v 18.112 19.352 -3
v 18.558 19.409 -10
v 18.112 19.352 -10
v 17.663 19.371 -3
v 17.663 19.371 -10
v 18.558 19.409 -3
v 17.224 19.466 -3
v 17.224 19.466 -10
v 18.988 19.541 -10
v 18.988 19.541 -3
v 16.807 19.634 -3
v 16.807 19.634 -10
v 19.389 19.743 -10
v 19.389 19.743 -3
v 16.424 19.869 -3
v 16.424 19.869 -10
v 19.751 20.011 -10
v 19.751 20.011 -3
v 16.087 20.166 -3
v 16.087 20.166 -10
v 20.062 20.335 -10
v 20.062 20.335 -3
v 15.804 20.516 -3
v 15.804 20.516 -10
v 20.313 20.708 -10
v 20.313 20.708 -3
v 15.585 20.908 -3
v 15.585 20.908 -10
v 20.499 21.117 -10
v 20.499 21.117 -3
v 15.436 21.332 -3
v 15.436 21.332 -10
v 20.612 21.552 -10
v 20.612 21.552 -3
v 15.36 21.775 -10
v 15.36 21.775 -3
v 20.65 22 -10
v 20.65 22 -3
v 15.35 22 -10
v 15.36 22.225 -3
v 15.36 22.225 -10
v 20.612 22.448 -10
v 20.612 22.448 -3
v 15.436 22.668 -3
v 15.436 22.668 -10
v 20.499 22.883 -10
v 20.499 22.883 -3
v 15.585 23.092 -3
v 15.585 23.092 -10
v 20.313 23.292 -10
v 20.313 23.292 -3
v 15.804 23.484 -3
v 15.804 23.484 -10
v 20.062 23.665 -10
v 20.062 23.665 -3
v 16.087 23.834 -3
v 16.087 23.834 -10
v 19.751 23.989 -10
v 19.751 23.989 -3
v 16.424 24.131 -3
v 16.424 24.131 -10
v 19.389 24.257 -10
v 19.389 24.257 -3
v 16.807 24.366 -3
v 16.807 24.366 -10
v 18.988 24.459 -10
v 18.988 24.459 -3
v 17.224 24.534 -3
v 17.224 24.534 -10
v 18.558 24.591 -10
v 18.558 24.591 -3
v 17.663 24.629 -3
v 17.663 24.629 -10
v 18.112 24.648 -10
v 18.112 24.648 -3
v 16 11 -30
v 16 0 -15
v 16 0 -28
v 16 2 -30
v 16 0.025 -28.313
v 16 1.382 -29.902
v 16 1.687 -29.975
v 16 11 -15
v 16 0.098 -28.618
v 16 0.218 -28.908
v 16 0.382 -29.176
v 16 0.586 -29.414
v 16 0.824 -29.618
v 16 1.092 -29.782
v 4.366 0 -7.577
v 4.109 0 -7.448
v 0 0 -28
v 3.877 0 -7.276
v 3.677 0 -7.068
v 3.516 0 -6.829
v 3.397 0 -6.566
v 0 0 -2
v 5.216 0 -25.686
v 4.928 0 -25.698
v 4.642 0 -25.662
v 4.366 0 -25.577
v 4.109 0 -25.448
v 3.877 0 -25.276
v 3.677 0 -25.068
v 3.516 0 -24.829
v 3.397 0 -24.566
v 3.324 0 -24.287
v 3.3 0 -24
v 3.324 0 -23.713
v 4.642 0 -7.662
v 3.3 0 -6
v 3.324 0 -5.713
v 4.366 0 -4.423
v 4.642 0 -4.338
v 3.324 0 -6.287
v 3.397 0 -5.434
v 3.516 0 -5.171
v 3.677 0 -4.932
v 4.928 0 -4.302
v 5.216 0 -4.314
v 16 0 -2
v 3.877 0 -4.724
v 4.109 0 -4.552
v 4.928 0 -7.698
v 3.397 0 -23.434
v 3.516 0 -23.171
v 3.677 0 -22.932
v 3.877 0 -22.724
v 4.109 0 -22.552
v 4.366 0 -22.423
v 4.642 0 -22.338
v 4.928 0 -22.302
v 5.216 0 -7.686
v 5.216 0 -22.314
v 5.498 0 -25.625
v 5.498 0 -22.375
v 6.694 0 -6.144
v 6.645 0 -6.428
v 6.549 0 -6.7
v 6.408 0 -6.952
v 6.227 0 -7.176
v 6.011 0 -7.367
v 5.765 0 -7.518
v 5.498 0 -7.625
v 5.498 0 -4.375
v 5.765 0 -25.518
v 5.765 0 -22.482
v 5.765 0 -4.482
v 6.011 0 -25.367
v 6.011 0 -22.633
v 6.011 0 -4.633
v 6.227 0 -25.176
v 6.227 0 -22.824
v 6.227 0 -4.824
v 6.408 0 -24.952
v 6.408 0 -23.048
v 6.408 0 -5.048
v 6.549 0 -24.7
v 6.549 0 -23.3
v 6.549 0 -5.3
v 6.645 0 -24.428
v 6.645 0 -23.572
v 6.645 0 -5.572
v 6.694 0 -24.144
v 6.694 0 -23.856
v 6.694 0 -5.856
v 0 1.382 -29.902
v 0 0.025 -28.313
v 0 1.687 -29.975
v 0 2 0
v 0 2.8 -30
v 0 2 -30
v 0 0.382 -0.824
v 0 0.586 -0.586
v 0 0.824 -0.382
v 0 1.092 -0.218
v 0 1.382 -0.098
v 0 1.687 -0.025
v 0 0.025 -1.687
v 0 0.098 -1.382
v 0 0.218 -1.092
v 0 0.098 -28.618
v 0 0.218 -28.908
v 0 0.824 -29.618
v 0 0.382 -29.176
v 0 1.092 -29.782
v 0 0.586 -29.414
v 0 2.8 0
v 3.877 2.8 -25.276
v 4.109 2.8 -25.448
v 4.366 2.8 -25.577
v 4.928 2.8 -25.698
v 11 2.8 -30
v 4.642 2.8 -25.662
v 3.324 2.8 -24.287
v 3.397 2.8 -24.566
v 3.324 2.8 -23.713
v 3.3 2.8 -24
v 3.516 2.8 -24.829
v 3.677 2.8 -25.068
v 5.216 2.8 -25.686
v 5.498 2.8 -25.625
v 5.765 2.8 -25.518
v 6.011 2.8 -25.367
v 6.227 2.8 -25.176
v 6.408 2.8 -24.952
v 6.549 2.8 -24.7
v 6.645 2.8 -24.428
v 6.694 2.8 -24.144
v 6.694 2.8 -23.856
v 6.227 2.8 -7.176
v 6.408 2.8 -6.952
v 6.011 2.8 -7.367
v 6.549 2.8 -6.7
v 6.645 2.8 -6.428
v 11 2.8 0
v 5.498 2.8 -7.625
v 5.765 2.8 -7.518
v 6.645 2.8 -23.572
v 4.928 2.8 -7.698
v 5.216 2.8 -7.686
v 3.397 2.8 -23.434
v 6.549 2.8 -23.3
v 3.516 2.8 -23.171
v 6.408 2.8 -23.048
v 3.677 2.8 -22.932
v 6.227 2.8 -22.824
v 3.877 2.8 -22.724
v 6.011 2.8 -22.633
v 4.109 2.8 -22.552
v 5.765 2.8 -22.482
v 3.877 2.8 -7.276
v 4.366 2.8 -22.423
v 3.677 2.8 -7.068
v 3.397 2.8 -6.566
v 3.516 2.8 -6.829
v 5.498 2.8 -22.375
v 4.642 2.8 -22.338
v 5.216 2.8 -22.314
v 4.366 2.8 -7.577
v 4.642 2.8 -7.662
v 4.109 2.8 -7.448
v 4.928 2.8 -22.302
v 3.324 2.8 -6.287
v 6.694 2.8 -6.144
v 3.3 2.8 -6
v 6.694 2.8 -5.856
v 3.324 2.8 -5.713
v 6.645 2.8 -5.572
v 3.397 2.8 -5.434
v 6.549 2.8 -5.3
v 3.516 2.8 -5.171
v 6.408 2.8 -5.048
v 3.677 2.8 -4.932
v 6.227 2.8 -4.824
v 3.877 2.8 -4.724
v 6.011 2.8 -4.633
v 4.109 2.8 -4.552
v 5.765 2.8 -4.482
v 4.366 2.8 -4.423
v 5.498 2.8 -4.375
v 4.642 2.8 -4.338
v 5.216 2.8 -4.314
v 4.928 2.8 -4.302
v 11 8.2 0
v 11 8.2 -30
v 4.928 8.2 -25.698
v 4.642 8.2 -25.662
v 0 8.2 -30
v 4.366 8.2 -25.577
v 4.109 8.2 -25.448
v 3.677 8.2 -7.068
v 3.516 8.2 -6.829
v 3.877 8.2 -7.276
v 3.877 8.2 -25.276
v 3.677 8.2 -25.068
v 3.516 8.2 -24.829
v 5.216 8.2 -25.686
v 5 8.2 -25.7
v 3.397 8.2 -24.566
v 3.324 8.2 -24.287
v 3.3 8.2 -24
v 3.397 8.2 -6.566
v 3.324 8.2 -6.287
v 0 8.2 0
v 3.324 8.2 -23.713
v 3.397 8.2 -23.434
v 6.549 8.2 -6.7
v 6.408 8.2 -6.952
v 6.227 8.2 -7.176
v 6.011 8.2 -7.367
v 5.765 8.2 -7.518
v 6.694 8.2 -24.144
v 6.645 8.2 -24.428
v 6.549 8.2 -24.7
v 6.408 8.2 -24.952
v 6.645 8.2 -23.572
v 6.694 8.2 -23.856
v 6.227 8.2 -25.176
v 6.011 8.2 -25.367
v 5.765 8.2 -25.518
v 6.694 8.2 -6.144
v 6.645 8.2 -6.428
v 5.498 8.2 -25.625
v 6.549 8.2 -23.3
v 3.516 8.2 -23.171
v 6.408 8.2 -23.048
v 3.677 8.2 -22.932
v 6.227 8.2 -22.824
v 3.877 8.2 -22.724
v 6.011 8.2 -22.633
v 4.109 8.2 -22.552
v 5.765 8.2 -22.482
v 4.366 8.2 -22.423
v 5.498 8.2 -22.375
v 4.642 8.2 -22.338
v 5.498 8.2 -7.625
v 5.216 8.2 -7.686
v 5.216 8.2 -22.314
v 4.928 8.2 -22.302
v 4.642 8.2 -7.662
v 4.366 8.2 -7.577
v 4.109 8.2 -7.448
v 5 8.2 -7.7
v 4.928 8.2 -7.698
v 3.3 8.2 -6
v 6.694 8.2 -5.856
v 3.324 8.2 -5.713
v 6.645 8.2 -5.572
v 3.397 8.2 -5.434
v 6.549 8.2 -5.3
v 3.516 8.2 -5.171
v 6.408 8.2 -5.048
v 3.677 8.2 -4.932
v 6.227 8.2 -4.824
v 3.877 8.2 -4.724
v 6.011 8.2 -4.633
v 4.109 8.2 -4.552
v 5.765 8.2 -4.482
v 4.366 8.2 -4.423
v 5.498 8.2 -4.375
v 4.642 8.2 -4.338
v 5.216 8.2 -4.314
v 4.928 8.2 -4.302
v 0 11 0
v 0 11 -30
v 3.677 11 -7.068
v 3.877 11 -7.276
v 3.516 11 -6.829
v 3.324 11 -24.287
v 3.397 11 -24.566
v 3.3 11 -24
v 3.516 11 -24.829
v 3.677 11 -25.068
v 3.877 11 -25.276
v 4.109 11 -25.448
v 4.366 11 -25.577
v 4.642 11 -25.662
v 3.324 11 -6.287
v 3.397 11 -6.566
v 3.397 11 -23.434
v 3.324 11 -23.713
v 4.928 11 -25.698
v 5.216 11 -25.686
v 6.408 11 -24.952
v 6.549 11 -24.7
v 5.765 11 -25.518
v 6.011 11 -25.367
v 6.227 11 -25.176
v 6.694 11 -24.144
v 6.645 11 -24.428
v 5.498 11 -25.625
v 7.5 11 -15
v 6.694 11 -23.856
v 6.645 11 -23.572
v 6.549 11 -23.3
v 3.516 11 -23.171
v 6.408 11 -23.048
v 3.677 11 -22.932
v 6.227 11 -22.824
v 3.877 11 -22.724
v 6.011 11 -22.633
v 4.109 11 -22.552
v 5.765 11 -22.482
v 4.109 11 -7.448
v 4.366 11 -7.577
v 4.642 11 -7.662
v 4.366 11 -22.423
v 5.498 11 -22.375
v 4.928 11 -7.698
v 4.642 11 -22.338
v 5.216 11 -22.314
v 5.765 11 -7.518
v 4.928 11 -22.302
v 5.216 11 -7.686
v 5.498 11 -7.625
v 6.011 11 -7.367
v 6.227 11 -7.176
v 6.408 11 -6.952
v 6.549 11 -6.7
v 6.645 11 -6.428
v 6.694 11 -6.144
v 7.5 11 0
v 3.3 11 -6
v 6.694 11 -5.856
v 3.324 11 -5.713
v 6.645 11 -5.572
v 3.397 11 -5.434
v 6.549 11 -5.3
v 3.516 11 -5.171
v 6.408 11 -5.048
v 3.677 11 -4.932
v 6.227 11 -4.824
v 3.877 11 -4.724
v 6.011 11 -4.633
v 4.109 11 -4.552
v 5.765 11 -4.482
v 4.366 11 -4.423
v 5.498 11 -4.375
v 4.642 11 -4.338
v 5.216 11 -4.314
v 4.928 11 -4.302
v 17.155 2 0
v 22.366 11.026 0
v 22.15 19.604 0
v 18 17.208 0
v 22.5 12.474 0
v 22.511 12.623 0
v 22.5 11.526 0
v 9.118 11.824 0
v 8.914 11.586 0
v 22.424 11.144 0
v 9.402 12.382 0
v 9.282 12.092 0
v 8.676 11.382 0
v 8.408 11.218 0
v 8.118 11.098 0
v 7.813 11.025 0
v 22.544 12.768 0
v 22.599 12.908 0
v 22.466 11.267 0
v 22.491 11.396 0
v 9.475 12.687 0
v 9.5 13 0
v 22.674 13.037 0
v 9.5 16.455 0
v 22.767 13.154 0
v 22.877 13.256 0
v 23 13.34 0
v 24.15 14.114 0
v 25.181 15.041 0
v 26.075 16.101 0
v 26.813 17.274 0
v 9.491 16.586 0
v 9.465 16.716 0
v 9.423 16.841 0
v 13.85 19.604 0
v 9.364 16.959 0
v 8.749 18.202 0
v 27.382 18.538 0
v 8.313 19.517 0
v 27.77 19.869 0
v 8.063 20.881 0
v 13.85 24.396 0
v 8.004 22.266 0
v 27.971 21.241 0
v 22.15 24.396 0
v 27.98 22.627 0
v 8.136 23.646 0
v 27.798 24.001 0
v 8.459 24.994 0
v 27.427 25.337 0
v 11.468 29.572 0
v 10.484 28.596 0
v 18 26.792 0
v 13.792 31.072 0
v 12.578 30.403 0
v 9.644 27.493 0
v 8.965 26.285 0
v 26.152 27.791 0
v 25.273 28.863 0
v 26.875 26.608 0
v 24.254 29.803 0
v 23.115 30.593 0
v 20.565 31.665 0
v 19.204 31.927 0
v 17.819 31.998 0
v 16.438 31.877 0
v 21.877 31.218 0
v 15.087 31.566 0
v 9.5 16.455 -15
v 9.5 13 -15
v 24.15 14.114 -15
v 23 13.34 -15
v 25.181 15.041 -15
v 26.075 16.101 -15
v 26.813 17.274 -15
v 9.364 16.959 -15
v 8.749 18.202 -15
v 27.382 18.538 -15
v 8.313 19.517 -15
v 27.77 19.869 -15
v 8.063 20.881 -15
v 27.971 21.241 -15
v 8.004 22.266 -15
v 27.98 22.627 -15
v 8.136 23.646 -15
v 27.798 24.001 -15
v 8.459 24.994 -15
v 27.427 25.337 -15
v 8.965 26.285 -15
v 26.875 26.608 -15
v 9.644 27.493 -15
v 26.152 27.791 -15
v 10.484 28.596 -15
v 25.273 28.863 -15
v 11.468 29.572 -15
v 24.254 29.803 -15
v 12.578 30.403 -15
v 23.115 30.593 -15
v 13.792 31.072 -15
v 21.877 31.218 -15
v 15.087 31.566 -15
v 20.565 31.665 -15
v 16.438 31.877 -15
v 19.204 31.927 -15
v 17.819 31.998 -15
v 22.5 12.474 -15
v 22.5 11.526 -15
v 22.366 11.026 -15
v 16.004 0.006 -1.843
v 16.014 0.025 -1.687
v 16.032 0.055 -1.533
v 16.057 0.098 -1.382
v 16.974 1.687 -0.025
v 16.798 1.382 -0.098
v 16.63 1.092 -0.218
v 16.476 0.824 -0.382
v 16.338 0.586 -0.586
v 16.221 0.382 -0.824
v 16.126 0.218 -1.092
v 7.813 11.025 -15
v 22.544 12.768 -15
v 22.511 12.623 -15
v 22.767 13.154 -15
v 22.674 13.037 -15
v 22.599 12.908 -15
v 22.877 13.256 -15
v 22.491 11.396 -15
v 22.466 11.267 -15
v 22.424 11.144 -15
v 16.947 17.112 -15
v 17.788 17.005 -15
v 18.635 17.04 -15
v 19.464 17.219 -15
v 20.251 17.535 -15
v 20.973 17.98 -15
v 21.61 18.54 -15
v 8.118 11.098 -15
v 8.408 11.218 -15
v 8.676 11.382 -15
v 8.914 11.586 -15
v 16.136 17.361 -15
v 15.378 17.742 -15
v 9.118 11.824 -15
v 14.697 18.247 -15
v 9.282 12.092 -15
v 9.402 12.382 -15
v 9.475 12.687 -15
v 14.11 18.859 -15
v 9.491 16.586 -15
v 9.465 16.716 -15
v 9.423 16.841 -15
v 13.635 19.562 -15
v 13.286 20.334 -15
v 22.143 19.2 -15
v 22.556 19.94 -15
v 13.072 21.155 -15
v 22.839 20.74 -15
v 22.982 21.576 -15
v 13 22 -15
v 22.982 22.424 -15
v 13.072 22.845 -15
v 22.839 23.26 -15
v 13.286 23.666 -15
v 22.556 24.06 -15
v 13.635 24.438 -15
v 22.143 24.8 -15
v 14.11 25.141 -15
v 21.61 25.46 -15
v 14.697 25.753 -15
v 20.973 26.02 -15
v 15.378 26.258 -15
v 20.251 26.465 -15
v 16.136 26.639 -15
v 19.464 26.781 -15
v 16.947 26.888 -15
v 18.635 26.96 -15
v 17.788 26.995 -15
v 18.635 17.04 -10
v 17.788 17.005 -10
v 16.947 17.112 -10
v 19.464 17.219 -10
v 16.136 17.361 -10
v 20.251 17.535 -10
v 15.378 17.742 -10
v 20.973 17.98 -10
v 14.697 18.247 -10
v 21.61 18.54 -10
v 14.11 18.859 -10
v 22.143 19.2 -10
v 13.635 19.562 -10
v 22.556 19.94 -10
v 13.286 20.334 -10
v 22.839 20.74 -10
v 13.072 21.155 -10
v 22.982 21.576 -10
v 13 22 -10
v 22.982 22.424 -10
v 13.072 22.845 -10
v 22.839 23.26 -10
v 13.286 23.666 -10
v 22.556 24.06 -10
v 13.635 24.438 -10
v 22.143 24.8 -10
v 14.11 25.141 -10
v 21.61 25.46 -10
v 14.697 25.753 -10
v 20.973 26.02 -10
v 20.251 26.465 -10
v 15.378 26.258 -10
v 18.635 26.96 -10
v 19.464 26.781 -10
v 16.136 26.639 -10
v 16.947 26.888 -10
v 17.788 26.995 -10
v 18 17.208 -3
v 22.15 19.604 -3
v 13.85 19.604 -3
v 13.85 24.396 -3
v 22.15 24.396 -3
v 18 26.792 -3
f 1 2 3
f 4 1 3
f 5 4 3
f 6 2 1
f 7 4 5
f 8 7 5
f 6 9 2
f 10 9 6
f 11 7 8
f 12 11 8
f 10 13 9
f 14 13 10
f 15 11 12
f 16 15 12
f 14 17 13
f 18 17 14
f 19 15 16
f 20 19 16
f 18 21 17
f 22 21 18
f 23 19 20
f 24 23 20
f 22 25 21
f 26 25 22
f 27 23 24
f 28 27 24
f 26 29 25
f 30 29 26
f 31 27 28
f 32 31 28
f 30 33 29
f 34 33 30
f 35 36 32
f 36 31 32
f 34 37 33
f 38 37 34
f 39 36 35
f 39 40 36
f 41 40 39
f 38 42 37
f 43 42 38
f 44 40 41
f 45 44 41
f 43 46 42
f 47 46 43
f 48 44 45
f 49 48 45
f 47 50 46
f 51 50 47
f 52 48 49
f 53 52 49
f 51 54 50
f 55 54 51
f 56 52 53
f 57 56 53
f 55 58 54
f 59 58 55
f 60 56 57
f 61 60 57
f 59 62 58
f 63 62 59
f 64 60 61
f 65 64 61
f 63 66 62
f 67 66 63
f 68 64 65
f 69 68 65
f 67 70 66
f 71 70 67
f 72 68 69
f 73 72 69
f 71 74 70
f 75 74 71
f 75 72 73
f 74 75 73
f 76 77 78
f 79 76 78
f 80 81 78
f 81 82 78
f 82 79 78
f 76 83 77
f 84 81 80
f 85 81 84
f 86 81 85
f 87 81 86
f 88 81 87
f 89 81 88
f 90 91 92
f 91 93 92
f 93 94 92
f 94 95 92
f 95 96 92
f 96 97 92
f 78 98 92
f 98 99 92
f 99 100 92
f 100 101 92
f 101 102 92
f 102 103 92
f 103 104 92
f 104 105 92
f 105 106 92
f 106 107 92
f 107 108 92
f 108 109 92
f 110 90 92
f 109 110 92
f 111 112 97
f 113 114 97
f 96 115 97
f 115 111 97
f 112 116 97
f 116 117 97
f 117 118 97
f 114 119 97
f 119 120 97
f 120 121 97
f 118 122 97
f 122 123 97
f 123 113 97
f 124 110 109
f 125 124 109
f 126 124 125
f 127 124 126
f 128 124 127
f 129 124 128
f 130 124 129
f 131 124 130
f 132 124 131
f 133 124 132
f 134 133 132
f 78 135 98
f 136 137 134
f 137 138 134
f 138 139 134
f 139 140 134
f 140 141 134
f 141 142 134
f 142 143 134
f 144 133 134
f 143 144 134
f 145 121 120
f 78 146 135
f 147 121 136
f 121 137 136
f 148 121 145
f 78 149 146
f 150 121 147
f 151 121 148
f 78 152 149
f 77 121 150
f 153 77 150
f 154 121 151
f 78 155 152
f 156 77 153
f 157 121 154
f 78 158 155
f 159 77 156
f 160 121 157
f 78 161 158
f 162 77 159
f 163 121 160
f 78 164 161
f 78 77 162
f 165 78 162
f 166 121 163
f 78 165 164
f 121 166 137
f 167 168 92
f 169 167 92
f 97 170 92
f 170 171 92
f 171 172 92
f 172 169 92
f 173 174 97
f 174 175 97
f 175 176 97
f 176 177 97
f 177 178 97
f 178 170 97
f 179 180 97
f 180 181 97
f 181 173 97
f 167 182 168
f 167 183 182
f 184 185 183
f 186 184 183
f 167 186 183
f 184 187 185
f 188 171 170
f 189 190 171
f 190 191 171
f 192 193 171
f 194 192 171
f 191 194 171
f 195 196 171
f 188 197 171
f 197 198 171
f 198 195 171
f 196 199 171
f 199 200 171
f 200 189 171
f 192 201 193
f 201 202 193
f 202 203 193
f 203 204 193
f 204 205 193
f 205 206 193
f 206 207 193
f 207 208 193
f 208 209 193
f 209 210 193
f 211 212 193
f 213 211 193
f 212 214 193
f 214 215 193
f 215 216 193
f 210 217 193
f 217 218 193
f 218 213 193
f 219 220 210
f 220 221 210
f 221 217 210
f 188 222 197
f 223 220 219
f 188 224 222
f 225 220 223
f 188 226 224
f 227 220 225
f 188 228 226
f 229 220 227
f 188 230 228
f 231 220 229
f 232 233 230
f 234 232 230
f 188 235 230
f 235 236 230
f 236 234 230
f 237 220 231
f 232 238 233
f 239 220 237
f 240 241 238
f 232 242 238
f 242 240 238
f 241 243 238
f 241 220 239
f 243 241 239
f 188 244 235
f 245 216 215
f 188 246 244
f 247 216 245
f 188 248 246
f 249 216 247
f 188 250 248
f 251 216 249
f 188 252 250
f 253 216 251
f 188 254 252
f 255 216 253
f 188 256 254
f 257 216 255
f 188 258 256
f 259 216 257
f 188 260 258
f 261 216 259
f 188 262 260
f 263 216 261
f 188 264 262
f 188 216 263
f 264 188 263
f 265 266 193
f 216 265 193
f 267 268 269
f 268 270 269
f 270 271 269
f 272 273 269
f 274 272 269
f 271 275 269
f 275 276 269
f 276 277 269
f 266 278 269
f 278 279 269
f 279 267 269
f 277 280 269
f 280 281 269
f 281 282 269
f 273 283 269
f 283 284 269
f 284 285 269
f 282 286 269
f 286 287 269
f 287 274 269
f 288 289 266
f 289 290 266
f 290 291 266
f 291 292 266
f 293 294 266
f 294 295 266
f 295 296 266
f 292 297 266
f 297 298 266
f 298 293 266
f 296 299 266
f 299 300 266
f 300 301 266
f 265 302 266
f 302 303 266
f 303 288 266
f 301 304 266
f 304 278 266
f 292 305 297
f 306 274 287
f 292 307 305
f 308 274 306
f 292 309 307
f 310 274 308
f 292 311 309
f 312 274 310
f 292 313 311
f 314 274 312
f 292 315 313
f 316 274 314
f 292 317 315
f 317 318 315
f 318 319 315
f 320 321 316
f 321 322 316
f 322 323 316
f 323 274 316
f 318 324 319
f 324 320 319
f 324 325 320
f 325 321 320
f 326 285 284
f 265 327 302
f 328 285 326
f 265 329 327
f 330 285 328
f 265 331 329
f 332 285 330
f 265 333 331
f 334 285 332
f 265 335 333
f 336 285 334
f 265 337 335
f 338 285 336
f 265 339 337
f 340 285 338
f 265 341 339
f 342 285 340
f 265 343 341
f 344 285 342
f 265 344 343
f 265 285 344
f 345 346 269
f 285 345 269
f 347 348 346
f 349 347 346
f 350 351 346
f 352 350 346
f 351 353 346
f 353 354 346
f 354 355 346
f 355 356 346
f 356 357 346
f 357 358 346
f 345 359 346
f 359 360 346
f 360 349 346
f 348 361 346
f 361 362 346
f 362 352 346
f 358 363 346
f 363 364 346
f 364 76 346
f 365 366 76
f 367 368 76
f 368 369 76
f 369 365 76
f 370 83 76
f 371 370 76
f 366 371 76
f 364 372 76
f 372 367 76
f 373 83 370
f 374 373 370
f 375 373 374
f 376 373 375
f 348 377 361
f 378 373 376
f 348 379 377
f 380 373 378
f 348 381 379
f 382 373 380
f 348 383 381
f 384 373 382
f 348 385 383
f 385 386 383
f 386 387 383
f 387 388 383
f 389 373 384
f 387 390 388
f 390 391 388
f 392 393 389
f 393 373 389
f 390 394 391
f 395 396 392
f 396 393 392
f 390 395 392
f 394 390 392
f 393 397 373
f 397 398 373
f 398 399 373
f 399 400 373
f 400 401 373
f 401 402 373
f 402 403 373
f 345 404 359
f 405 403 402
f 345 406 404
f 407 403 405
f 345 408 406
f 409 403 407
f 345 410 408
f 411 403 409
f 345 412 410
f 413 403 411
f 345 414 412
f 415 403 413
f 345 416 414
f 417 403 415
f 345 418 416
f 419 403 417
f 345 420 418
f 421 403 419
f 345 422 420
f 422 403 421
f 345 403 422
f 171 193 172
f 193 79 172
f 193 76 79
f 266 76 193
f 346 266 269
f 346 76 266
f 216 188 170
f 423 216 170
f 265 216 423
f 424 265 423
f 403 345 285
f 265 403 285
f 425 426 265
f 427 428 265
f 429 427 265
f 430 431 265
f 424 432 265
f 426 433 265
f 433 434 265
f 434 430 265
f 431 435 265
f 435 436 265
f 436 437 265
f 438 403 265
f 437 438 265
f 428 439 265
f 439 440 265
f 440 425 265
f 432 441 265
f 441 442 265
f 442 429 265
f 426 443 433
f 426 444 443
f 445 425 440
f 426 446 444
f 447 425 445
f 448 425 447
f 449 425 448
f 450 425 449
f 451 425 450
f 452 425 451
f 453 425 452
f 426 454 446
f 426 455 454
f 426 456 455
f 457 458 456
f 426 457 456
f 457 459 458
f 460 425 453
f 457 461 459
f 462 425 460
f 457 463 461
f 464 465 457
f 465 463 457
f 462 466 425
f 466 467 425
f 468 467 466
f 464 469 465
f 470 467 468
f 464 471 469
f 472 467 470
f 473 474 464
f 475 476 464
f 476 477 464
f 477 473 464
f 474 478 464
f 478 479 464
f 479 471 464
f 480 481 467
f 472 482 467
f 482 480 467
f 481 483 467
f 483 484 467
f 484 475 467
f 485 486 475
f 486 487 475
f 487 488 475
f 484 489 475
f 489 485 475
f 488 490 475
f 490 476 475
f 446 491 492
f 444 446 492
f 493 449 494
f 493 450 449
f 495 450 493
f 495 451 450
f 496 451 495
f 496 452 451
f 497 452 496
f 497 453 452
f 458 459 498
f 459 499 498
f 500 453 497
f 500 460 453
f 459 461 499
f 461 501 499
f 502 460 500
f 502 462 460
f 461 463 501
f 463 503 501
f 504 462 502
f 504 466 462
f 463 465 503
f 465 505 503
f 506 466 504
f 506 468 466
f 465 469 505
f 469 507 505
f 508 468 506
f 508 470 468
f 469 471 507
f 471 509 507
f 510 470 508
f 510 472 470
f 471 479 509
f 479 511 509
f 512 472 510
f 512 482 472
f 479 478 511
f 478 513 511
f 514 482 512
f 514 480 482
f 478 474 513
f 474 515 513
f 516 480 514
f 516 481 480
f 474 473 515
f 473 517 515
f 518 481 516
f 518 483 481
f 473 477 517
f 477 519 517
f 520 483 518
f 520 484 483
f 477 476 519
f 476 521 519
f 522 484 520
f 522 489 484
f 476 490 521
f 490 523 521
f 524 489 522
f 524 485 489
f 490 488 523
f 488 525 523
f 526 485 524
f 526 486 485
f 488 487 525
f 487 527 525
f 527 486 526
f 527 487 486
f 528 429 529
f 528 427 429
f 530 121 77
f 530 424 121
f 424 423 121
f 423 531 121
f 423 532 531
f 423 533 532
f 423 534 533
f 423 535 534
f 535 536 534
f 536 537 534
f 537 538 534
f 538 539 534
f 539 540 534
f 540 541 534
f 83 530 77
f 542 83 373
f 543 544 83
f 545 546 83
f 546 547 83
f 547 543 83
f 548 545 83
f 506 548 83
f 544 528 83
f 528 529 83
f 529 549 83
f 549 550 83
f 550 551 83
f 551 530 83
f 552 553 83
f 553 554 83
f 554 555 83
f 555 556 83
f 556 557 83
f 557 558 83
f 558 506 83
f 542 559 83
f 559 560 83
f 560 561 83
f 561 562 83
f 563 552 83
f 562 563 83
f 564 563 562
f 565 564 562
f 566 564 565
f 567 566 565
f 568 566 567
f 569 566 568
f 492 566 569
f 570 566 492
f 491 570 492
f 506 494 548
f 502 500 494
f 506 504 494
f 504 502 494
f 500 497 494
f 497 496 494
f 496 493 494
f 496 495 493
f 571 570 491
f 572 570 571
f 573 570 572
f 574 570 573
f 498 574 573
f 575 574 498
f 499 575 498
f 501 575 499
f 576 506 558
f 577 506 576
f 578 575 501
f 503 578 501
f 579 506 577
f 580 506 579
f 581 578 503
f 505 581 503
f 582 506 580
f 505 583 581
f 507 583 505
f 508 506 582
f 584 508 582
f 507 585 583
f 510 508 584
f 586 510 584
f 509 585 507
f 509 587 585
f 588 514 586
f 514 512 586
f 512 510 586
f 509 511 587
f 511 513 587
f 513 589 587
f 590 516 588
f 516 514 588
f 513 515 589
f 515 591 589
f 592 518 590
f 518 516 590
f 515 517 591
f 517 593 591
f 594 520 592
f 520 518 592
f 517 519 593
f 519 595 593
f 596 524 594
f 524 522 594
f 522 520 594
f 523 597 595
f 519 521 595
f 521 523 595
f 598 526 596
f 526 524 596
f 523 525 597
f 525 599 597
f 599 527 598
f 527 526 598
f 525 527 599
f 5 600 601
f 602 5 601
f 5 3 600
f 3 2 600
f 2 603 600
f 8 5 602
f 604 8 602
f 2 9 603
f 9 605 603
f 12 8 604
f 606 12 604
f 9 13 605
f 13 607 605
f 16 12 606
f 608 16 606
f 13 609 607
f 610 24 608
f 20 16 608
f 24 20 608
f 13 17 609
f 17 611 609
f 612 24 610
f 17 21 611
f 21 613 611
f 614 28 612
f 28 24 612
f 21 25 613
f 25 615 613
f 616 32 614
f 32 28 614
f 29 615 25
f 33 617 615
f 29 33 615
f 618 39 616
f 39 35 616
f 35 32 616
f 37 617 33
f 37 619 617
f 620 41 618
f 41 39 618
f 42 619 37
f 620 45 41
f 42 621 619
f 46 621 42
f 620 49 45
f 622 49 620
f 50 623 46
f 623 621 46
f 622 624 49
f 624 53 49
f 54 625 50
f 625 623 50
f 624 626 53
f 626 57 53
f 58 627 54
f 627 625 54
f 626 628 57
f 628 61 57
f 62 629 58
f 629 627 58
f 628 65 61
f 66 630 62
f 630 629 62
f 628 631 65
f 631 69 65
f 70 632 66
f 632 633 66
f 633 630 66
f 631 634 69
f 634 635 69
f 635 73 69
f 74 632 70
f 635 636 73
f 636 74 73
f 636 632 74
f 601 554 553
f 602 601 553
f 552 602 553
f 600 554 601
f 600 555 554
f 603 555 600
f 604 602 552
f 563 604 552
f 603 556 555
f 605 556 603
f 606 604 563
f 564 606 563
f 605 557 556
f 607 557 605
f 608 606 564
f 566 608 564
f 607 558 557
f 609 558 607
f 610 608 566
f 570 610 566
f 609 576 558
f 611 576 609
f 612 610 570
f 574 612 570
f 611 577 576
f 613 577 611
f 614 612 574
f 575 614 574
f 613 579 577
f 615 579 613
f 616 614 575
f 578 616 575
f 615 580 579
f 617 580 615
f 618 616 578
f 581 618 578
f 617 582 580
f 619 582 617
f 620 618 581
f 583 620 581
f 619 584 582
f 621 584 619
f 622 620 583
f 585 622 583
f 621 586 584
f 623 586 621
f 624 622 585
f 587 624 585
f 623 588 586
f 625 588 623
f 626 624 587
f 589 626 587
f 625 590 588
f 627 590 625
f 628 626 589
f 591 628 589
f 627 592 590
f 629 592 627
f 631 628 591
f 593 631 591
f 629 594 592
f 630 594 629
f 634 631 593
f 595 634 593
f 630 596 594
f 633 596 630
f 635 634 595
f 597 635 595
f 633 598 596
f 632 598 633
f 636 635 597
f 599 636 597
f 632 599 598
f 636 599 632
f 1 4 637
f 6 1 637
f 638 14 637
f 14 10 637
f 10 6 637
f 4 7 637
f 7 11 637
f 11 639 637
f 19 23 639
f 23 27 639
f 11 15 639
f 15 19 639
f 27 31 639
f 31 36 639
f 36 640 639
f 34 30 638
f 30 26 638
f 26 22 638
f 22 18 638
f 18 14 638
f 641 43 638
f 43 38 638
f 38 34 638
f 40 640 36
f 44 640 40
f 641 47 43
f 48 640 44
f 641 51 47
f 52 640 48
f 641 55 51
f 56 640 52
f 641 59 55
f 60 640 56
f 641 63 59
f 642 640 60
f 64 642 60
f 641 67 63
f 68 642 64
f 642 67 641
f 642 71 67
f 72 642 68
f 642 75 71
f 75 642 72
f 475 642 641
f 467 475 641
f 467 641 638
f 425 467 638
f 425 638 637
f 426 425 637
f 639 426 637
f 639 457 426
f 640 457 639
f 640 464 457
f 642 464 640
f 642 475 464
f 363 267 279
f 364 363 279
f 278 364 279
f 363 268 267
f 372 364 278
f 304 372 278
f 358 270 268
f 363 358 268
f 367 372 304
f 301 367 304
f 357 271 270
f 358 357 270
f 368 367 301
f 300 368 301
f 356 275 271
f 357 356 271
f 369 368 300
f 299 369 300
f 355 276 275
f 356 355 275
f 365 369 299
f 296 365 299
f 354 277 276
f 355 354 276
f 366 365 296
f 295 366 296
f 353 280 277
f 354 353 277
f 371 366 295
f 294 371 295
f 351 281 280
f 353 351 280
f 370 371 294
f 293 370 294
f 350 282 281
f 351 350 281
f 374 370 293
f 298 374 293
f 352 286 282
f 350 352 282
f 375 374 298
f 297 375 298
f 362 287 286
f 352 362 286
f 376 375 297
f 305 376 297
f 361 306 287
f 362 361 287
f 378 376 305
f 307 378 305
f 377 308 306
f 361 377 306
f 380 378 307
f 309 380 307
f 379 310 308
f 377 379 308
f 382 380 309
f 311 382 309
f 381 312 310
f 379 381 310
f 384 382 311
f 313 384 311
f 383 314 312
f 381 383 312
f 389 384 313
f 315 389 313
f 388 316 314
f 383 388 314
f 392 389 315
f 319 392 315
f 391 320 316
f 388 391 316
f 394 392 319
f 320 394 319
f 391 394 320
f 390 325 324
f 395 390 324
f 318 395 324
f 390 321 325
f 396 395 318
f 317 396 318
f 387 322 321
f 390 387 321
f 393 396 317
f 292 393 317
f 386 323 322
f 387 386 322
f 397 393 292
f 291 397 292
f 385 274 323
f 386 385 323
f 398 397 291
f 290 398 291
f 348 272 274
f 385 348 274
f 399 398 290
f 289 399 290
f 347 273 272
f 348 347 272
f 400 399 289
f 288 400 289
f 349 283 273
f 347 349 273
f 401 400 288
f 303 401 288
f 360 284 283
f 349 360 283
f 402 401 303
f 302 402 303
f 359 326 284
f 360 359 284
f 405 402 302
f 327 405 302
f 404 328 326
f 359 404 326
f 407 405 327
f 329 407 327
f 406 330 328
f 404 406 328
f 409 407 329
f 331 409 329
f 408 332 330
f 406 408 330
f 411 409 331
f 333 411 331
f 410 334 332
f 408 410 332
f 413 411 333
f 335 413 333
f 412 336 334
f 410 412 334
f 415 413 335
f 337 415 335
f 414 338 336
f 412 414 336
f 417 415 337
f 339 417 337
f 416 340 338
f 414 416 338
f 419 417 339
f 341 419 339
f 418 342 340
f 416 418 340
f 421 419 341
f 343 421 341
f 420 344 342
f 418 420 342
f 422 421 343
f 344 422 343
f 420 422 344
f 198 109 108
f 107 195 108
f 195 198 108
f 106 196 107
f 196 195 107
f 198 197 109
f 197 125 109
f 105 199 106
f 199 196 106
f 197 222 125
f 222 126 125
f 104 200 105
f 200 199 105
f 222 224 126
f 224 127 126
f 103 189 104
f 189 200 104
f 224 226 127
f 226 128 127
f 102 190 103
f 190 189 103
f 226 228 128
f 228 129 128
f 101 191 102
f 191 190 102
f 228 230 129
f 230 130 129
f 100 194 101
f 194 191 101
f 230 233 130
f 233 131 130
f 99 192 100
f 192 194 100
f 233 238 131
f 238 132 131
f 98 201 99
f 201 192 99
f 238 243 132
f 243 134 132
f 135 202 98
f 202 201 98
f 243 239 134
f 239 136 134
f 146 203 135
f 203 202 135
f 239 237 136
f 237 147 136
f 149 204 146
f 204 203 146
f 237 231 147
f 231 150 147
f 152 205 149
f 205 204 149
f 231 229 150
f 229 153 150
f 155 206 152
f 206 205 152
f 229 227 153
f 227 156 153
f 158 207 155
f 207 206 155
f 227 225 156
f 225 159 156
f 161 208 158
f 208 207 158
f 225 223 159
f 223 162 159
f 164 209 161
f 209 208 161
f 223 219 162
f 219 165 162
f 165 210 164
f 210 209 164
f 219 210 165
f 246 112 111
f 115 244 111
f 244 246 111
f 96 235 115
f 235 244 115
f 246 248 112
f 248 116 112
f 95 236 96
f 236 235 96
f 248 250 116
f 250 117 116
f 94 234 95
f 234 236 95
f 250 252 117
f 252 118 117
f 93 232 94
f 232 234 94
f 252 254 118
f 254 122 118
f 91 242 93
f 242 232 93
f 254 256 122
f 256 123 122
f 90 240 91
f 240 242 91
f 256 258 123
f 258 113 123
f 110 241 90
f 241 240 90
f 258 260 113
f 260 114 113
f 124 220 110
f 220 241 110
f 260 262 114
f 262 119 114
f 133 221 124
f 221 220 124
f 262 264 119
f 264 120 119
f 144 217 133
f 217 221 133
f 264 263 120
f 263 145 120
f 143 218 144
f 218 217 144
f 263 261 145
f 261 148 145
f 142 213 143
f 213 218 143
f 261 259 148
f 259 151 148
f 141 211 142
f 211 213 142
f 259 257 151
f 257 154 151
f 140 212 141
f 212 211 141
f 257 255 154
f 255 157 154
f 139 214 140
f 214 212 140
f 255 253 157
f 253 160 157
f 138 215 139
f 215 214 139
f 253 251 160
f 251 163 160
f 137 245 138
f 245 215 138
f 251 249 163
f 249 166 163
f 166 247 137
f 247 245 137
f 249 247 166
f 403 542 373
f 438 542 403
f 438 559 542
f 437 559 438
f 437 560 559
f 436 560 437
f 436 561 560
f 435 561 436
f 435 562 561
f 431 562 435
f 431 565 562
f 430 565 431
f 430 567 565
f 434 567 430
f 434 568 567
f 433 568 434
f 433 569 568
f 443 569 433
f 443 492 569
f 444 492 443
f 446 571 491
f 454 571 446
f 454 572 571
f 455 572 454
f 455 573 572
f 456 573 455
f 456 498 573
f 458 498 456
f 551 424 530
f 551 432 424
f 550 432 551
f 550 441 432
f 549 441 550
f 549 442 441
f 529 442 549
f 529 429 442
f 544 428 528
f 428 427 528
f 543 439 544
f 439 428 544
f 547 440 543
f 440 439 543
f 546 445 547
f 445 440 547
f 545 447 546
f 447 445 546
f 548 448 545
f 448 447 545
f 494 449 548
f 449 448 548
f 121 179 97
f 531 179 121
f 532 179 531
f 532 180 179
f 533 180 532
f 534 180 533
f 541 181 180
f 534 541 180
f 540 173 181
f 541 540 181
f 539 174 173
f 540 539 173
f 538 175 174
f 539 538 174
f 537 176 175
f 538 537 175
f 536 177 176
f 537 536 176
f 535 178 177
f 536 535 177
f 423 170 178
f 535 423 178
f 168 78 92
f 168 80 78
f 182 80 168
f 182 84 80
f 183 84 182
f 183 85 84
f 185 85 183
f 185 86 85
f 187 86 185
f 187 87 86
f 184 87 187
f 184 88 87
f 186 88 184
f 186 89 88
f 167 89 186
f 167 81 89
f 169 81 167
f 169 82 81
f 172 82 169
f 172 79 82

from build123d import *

# Parameters (mm, degrees)
EXTRUDE_1_DEPTH          = 30
SKETCH_3_R               = 2.65
EXTRUDE_2_DEPTH          = 15
SKETCH_4_R               = 5
CUT_EXTRUDE_1_DEPTH      = 5
CUT_EXTRUDE_2_DEPTH      = 3
CUT_EXTRUDE_3_DEPTH      = 47.097722286
CUT_EXTRUDE_3_DEPTH_BACK = 47.097722286
SKETCH_6_R               = 1.7
FILLET_1_R               = 2
FILLET_2_R               = 1
FILLET_3_R               = 1
FILLET_5_R               = 2


with BuildPart() as part:
    # 草图2 → 凸台-拉伸1 (new body)
    with BuildSketch(Plane.XY):
        Polygon((0, 0), (0, 2.8), (11, 2.8), (11, 8.2), (0, 8.2), (0, 11), (16, 11), (16, 0), align=None)
    extrude(amount=-EXTRUDE_1_DEPTH)

    # 草图3 → 凸台-拉伸2 (add)
    with BuildSketch(Plane.XY):
        with BuildLine():
            Line((9.5, 11), (9.5, 16.732173124))
            ThreePointArc((9.5, 16.732173124), (20.711715487, 31.625310339), (22.5, 13.06971445))
            Line((22.5, 13.06971445), (22.5, 11.258330249))
            Line((22.5, 11.258330249), (16, 0))
            Line((16, 0), (16, 11))
            Line((16, 11), (9.5, 11))
        make_face()
        with Locations((18, 22)):
            Circle(SKETCH_3_R, mode=Mode.SUBTRACT)
    extrude(amount=-EXTRUDE_2_DEPTH)

    # 草图4 → 切除-拉伸1 (cut)
    with BuildSketch(Plane(origin=(0, 0, -15), x_dir=(-1, 0, 0), z_dir=(0, 0, -1))):
        with Locations((-18, 22)):
            Circle(SKETCH_4_R)
    extrude(amount=-CUT_EXTRUDE_1_DEPTH, mode=Mode.SUBTRACT)

    # 草图5 → 切除-拉伸2 (cut)
    with BuildSketch(Plane.XY):
        Polygon((18, 26.792007234), (13.85, 24.396003617), (13.85, 19.603996383), (18, 17.207992766), (22.15, 19.603996383), (22.15, 24.396003617), align=None)
    extrude(amount=-CUT_EXTRUDE_2_DEPTH, mode=Mode.SUBTRACT)

    # 草图6 → 切除-拉伸3 (cut, two sides: drawn at the far end of the back side and taken through both)
    with BuildSketch(Plane(origin=(0, 11, 0), x_dir=(1, 0, 0), z_dir=(0, 1, 0)).offset(-CUT_EXTRUDE_3_DEPTH_BACK)):
        with Locations(Location((5, 6, 0), (0, 0, 180))):
            Circle(SKETCH_6_R)
        with Locations(Location((5, 24, 0), (0, 0, 180))):
            Circle(SKETCH_6_R)
    extrude(amount=CUT_EXTRUDE_3_DEPTH + CUT_EXTRUDE_3_DEPTH_BACK, mode=Mode.SUBTRACT)

    # 圆角1
    fillet_1_edges = [part.edges().sort_by_distance(p)[0] for p in [
        (9.5, 11, -7.5),
    ]]
    fillet(fillet_1_edges, radius=FILLET_1_R)

    # 圆角2
    fillet_2_edges = [part.edges().sort_by_distance(p)[0] for p in [
        (9.5, 16.732173124, -7.5),
    ]]
    fillet(fillet_2_edges, radius=FILLET_2_R)

    # 圆角3
    fillet_3_edges = [part.edges().sort_by_distance(p)[0] for p in [
        (22.5, 13.06971445, -7.5),
        (22.5, 11.258330249, -7.5),
    ]]
    fillet(fillet_3_edges, radius=FILLET_3_R)

    # 圆角5
    fillet_5_edges = [part.edges().sort_by_distance(p)[0] for p in [
        (8, 0, 0),
        (8, 0, -30),
    ]]
    fillet(fillet_5_edges, radius=FILLET_5_R)


solid = part.part
